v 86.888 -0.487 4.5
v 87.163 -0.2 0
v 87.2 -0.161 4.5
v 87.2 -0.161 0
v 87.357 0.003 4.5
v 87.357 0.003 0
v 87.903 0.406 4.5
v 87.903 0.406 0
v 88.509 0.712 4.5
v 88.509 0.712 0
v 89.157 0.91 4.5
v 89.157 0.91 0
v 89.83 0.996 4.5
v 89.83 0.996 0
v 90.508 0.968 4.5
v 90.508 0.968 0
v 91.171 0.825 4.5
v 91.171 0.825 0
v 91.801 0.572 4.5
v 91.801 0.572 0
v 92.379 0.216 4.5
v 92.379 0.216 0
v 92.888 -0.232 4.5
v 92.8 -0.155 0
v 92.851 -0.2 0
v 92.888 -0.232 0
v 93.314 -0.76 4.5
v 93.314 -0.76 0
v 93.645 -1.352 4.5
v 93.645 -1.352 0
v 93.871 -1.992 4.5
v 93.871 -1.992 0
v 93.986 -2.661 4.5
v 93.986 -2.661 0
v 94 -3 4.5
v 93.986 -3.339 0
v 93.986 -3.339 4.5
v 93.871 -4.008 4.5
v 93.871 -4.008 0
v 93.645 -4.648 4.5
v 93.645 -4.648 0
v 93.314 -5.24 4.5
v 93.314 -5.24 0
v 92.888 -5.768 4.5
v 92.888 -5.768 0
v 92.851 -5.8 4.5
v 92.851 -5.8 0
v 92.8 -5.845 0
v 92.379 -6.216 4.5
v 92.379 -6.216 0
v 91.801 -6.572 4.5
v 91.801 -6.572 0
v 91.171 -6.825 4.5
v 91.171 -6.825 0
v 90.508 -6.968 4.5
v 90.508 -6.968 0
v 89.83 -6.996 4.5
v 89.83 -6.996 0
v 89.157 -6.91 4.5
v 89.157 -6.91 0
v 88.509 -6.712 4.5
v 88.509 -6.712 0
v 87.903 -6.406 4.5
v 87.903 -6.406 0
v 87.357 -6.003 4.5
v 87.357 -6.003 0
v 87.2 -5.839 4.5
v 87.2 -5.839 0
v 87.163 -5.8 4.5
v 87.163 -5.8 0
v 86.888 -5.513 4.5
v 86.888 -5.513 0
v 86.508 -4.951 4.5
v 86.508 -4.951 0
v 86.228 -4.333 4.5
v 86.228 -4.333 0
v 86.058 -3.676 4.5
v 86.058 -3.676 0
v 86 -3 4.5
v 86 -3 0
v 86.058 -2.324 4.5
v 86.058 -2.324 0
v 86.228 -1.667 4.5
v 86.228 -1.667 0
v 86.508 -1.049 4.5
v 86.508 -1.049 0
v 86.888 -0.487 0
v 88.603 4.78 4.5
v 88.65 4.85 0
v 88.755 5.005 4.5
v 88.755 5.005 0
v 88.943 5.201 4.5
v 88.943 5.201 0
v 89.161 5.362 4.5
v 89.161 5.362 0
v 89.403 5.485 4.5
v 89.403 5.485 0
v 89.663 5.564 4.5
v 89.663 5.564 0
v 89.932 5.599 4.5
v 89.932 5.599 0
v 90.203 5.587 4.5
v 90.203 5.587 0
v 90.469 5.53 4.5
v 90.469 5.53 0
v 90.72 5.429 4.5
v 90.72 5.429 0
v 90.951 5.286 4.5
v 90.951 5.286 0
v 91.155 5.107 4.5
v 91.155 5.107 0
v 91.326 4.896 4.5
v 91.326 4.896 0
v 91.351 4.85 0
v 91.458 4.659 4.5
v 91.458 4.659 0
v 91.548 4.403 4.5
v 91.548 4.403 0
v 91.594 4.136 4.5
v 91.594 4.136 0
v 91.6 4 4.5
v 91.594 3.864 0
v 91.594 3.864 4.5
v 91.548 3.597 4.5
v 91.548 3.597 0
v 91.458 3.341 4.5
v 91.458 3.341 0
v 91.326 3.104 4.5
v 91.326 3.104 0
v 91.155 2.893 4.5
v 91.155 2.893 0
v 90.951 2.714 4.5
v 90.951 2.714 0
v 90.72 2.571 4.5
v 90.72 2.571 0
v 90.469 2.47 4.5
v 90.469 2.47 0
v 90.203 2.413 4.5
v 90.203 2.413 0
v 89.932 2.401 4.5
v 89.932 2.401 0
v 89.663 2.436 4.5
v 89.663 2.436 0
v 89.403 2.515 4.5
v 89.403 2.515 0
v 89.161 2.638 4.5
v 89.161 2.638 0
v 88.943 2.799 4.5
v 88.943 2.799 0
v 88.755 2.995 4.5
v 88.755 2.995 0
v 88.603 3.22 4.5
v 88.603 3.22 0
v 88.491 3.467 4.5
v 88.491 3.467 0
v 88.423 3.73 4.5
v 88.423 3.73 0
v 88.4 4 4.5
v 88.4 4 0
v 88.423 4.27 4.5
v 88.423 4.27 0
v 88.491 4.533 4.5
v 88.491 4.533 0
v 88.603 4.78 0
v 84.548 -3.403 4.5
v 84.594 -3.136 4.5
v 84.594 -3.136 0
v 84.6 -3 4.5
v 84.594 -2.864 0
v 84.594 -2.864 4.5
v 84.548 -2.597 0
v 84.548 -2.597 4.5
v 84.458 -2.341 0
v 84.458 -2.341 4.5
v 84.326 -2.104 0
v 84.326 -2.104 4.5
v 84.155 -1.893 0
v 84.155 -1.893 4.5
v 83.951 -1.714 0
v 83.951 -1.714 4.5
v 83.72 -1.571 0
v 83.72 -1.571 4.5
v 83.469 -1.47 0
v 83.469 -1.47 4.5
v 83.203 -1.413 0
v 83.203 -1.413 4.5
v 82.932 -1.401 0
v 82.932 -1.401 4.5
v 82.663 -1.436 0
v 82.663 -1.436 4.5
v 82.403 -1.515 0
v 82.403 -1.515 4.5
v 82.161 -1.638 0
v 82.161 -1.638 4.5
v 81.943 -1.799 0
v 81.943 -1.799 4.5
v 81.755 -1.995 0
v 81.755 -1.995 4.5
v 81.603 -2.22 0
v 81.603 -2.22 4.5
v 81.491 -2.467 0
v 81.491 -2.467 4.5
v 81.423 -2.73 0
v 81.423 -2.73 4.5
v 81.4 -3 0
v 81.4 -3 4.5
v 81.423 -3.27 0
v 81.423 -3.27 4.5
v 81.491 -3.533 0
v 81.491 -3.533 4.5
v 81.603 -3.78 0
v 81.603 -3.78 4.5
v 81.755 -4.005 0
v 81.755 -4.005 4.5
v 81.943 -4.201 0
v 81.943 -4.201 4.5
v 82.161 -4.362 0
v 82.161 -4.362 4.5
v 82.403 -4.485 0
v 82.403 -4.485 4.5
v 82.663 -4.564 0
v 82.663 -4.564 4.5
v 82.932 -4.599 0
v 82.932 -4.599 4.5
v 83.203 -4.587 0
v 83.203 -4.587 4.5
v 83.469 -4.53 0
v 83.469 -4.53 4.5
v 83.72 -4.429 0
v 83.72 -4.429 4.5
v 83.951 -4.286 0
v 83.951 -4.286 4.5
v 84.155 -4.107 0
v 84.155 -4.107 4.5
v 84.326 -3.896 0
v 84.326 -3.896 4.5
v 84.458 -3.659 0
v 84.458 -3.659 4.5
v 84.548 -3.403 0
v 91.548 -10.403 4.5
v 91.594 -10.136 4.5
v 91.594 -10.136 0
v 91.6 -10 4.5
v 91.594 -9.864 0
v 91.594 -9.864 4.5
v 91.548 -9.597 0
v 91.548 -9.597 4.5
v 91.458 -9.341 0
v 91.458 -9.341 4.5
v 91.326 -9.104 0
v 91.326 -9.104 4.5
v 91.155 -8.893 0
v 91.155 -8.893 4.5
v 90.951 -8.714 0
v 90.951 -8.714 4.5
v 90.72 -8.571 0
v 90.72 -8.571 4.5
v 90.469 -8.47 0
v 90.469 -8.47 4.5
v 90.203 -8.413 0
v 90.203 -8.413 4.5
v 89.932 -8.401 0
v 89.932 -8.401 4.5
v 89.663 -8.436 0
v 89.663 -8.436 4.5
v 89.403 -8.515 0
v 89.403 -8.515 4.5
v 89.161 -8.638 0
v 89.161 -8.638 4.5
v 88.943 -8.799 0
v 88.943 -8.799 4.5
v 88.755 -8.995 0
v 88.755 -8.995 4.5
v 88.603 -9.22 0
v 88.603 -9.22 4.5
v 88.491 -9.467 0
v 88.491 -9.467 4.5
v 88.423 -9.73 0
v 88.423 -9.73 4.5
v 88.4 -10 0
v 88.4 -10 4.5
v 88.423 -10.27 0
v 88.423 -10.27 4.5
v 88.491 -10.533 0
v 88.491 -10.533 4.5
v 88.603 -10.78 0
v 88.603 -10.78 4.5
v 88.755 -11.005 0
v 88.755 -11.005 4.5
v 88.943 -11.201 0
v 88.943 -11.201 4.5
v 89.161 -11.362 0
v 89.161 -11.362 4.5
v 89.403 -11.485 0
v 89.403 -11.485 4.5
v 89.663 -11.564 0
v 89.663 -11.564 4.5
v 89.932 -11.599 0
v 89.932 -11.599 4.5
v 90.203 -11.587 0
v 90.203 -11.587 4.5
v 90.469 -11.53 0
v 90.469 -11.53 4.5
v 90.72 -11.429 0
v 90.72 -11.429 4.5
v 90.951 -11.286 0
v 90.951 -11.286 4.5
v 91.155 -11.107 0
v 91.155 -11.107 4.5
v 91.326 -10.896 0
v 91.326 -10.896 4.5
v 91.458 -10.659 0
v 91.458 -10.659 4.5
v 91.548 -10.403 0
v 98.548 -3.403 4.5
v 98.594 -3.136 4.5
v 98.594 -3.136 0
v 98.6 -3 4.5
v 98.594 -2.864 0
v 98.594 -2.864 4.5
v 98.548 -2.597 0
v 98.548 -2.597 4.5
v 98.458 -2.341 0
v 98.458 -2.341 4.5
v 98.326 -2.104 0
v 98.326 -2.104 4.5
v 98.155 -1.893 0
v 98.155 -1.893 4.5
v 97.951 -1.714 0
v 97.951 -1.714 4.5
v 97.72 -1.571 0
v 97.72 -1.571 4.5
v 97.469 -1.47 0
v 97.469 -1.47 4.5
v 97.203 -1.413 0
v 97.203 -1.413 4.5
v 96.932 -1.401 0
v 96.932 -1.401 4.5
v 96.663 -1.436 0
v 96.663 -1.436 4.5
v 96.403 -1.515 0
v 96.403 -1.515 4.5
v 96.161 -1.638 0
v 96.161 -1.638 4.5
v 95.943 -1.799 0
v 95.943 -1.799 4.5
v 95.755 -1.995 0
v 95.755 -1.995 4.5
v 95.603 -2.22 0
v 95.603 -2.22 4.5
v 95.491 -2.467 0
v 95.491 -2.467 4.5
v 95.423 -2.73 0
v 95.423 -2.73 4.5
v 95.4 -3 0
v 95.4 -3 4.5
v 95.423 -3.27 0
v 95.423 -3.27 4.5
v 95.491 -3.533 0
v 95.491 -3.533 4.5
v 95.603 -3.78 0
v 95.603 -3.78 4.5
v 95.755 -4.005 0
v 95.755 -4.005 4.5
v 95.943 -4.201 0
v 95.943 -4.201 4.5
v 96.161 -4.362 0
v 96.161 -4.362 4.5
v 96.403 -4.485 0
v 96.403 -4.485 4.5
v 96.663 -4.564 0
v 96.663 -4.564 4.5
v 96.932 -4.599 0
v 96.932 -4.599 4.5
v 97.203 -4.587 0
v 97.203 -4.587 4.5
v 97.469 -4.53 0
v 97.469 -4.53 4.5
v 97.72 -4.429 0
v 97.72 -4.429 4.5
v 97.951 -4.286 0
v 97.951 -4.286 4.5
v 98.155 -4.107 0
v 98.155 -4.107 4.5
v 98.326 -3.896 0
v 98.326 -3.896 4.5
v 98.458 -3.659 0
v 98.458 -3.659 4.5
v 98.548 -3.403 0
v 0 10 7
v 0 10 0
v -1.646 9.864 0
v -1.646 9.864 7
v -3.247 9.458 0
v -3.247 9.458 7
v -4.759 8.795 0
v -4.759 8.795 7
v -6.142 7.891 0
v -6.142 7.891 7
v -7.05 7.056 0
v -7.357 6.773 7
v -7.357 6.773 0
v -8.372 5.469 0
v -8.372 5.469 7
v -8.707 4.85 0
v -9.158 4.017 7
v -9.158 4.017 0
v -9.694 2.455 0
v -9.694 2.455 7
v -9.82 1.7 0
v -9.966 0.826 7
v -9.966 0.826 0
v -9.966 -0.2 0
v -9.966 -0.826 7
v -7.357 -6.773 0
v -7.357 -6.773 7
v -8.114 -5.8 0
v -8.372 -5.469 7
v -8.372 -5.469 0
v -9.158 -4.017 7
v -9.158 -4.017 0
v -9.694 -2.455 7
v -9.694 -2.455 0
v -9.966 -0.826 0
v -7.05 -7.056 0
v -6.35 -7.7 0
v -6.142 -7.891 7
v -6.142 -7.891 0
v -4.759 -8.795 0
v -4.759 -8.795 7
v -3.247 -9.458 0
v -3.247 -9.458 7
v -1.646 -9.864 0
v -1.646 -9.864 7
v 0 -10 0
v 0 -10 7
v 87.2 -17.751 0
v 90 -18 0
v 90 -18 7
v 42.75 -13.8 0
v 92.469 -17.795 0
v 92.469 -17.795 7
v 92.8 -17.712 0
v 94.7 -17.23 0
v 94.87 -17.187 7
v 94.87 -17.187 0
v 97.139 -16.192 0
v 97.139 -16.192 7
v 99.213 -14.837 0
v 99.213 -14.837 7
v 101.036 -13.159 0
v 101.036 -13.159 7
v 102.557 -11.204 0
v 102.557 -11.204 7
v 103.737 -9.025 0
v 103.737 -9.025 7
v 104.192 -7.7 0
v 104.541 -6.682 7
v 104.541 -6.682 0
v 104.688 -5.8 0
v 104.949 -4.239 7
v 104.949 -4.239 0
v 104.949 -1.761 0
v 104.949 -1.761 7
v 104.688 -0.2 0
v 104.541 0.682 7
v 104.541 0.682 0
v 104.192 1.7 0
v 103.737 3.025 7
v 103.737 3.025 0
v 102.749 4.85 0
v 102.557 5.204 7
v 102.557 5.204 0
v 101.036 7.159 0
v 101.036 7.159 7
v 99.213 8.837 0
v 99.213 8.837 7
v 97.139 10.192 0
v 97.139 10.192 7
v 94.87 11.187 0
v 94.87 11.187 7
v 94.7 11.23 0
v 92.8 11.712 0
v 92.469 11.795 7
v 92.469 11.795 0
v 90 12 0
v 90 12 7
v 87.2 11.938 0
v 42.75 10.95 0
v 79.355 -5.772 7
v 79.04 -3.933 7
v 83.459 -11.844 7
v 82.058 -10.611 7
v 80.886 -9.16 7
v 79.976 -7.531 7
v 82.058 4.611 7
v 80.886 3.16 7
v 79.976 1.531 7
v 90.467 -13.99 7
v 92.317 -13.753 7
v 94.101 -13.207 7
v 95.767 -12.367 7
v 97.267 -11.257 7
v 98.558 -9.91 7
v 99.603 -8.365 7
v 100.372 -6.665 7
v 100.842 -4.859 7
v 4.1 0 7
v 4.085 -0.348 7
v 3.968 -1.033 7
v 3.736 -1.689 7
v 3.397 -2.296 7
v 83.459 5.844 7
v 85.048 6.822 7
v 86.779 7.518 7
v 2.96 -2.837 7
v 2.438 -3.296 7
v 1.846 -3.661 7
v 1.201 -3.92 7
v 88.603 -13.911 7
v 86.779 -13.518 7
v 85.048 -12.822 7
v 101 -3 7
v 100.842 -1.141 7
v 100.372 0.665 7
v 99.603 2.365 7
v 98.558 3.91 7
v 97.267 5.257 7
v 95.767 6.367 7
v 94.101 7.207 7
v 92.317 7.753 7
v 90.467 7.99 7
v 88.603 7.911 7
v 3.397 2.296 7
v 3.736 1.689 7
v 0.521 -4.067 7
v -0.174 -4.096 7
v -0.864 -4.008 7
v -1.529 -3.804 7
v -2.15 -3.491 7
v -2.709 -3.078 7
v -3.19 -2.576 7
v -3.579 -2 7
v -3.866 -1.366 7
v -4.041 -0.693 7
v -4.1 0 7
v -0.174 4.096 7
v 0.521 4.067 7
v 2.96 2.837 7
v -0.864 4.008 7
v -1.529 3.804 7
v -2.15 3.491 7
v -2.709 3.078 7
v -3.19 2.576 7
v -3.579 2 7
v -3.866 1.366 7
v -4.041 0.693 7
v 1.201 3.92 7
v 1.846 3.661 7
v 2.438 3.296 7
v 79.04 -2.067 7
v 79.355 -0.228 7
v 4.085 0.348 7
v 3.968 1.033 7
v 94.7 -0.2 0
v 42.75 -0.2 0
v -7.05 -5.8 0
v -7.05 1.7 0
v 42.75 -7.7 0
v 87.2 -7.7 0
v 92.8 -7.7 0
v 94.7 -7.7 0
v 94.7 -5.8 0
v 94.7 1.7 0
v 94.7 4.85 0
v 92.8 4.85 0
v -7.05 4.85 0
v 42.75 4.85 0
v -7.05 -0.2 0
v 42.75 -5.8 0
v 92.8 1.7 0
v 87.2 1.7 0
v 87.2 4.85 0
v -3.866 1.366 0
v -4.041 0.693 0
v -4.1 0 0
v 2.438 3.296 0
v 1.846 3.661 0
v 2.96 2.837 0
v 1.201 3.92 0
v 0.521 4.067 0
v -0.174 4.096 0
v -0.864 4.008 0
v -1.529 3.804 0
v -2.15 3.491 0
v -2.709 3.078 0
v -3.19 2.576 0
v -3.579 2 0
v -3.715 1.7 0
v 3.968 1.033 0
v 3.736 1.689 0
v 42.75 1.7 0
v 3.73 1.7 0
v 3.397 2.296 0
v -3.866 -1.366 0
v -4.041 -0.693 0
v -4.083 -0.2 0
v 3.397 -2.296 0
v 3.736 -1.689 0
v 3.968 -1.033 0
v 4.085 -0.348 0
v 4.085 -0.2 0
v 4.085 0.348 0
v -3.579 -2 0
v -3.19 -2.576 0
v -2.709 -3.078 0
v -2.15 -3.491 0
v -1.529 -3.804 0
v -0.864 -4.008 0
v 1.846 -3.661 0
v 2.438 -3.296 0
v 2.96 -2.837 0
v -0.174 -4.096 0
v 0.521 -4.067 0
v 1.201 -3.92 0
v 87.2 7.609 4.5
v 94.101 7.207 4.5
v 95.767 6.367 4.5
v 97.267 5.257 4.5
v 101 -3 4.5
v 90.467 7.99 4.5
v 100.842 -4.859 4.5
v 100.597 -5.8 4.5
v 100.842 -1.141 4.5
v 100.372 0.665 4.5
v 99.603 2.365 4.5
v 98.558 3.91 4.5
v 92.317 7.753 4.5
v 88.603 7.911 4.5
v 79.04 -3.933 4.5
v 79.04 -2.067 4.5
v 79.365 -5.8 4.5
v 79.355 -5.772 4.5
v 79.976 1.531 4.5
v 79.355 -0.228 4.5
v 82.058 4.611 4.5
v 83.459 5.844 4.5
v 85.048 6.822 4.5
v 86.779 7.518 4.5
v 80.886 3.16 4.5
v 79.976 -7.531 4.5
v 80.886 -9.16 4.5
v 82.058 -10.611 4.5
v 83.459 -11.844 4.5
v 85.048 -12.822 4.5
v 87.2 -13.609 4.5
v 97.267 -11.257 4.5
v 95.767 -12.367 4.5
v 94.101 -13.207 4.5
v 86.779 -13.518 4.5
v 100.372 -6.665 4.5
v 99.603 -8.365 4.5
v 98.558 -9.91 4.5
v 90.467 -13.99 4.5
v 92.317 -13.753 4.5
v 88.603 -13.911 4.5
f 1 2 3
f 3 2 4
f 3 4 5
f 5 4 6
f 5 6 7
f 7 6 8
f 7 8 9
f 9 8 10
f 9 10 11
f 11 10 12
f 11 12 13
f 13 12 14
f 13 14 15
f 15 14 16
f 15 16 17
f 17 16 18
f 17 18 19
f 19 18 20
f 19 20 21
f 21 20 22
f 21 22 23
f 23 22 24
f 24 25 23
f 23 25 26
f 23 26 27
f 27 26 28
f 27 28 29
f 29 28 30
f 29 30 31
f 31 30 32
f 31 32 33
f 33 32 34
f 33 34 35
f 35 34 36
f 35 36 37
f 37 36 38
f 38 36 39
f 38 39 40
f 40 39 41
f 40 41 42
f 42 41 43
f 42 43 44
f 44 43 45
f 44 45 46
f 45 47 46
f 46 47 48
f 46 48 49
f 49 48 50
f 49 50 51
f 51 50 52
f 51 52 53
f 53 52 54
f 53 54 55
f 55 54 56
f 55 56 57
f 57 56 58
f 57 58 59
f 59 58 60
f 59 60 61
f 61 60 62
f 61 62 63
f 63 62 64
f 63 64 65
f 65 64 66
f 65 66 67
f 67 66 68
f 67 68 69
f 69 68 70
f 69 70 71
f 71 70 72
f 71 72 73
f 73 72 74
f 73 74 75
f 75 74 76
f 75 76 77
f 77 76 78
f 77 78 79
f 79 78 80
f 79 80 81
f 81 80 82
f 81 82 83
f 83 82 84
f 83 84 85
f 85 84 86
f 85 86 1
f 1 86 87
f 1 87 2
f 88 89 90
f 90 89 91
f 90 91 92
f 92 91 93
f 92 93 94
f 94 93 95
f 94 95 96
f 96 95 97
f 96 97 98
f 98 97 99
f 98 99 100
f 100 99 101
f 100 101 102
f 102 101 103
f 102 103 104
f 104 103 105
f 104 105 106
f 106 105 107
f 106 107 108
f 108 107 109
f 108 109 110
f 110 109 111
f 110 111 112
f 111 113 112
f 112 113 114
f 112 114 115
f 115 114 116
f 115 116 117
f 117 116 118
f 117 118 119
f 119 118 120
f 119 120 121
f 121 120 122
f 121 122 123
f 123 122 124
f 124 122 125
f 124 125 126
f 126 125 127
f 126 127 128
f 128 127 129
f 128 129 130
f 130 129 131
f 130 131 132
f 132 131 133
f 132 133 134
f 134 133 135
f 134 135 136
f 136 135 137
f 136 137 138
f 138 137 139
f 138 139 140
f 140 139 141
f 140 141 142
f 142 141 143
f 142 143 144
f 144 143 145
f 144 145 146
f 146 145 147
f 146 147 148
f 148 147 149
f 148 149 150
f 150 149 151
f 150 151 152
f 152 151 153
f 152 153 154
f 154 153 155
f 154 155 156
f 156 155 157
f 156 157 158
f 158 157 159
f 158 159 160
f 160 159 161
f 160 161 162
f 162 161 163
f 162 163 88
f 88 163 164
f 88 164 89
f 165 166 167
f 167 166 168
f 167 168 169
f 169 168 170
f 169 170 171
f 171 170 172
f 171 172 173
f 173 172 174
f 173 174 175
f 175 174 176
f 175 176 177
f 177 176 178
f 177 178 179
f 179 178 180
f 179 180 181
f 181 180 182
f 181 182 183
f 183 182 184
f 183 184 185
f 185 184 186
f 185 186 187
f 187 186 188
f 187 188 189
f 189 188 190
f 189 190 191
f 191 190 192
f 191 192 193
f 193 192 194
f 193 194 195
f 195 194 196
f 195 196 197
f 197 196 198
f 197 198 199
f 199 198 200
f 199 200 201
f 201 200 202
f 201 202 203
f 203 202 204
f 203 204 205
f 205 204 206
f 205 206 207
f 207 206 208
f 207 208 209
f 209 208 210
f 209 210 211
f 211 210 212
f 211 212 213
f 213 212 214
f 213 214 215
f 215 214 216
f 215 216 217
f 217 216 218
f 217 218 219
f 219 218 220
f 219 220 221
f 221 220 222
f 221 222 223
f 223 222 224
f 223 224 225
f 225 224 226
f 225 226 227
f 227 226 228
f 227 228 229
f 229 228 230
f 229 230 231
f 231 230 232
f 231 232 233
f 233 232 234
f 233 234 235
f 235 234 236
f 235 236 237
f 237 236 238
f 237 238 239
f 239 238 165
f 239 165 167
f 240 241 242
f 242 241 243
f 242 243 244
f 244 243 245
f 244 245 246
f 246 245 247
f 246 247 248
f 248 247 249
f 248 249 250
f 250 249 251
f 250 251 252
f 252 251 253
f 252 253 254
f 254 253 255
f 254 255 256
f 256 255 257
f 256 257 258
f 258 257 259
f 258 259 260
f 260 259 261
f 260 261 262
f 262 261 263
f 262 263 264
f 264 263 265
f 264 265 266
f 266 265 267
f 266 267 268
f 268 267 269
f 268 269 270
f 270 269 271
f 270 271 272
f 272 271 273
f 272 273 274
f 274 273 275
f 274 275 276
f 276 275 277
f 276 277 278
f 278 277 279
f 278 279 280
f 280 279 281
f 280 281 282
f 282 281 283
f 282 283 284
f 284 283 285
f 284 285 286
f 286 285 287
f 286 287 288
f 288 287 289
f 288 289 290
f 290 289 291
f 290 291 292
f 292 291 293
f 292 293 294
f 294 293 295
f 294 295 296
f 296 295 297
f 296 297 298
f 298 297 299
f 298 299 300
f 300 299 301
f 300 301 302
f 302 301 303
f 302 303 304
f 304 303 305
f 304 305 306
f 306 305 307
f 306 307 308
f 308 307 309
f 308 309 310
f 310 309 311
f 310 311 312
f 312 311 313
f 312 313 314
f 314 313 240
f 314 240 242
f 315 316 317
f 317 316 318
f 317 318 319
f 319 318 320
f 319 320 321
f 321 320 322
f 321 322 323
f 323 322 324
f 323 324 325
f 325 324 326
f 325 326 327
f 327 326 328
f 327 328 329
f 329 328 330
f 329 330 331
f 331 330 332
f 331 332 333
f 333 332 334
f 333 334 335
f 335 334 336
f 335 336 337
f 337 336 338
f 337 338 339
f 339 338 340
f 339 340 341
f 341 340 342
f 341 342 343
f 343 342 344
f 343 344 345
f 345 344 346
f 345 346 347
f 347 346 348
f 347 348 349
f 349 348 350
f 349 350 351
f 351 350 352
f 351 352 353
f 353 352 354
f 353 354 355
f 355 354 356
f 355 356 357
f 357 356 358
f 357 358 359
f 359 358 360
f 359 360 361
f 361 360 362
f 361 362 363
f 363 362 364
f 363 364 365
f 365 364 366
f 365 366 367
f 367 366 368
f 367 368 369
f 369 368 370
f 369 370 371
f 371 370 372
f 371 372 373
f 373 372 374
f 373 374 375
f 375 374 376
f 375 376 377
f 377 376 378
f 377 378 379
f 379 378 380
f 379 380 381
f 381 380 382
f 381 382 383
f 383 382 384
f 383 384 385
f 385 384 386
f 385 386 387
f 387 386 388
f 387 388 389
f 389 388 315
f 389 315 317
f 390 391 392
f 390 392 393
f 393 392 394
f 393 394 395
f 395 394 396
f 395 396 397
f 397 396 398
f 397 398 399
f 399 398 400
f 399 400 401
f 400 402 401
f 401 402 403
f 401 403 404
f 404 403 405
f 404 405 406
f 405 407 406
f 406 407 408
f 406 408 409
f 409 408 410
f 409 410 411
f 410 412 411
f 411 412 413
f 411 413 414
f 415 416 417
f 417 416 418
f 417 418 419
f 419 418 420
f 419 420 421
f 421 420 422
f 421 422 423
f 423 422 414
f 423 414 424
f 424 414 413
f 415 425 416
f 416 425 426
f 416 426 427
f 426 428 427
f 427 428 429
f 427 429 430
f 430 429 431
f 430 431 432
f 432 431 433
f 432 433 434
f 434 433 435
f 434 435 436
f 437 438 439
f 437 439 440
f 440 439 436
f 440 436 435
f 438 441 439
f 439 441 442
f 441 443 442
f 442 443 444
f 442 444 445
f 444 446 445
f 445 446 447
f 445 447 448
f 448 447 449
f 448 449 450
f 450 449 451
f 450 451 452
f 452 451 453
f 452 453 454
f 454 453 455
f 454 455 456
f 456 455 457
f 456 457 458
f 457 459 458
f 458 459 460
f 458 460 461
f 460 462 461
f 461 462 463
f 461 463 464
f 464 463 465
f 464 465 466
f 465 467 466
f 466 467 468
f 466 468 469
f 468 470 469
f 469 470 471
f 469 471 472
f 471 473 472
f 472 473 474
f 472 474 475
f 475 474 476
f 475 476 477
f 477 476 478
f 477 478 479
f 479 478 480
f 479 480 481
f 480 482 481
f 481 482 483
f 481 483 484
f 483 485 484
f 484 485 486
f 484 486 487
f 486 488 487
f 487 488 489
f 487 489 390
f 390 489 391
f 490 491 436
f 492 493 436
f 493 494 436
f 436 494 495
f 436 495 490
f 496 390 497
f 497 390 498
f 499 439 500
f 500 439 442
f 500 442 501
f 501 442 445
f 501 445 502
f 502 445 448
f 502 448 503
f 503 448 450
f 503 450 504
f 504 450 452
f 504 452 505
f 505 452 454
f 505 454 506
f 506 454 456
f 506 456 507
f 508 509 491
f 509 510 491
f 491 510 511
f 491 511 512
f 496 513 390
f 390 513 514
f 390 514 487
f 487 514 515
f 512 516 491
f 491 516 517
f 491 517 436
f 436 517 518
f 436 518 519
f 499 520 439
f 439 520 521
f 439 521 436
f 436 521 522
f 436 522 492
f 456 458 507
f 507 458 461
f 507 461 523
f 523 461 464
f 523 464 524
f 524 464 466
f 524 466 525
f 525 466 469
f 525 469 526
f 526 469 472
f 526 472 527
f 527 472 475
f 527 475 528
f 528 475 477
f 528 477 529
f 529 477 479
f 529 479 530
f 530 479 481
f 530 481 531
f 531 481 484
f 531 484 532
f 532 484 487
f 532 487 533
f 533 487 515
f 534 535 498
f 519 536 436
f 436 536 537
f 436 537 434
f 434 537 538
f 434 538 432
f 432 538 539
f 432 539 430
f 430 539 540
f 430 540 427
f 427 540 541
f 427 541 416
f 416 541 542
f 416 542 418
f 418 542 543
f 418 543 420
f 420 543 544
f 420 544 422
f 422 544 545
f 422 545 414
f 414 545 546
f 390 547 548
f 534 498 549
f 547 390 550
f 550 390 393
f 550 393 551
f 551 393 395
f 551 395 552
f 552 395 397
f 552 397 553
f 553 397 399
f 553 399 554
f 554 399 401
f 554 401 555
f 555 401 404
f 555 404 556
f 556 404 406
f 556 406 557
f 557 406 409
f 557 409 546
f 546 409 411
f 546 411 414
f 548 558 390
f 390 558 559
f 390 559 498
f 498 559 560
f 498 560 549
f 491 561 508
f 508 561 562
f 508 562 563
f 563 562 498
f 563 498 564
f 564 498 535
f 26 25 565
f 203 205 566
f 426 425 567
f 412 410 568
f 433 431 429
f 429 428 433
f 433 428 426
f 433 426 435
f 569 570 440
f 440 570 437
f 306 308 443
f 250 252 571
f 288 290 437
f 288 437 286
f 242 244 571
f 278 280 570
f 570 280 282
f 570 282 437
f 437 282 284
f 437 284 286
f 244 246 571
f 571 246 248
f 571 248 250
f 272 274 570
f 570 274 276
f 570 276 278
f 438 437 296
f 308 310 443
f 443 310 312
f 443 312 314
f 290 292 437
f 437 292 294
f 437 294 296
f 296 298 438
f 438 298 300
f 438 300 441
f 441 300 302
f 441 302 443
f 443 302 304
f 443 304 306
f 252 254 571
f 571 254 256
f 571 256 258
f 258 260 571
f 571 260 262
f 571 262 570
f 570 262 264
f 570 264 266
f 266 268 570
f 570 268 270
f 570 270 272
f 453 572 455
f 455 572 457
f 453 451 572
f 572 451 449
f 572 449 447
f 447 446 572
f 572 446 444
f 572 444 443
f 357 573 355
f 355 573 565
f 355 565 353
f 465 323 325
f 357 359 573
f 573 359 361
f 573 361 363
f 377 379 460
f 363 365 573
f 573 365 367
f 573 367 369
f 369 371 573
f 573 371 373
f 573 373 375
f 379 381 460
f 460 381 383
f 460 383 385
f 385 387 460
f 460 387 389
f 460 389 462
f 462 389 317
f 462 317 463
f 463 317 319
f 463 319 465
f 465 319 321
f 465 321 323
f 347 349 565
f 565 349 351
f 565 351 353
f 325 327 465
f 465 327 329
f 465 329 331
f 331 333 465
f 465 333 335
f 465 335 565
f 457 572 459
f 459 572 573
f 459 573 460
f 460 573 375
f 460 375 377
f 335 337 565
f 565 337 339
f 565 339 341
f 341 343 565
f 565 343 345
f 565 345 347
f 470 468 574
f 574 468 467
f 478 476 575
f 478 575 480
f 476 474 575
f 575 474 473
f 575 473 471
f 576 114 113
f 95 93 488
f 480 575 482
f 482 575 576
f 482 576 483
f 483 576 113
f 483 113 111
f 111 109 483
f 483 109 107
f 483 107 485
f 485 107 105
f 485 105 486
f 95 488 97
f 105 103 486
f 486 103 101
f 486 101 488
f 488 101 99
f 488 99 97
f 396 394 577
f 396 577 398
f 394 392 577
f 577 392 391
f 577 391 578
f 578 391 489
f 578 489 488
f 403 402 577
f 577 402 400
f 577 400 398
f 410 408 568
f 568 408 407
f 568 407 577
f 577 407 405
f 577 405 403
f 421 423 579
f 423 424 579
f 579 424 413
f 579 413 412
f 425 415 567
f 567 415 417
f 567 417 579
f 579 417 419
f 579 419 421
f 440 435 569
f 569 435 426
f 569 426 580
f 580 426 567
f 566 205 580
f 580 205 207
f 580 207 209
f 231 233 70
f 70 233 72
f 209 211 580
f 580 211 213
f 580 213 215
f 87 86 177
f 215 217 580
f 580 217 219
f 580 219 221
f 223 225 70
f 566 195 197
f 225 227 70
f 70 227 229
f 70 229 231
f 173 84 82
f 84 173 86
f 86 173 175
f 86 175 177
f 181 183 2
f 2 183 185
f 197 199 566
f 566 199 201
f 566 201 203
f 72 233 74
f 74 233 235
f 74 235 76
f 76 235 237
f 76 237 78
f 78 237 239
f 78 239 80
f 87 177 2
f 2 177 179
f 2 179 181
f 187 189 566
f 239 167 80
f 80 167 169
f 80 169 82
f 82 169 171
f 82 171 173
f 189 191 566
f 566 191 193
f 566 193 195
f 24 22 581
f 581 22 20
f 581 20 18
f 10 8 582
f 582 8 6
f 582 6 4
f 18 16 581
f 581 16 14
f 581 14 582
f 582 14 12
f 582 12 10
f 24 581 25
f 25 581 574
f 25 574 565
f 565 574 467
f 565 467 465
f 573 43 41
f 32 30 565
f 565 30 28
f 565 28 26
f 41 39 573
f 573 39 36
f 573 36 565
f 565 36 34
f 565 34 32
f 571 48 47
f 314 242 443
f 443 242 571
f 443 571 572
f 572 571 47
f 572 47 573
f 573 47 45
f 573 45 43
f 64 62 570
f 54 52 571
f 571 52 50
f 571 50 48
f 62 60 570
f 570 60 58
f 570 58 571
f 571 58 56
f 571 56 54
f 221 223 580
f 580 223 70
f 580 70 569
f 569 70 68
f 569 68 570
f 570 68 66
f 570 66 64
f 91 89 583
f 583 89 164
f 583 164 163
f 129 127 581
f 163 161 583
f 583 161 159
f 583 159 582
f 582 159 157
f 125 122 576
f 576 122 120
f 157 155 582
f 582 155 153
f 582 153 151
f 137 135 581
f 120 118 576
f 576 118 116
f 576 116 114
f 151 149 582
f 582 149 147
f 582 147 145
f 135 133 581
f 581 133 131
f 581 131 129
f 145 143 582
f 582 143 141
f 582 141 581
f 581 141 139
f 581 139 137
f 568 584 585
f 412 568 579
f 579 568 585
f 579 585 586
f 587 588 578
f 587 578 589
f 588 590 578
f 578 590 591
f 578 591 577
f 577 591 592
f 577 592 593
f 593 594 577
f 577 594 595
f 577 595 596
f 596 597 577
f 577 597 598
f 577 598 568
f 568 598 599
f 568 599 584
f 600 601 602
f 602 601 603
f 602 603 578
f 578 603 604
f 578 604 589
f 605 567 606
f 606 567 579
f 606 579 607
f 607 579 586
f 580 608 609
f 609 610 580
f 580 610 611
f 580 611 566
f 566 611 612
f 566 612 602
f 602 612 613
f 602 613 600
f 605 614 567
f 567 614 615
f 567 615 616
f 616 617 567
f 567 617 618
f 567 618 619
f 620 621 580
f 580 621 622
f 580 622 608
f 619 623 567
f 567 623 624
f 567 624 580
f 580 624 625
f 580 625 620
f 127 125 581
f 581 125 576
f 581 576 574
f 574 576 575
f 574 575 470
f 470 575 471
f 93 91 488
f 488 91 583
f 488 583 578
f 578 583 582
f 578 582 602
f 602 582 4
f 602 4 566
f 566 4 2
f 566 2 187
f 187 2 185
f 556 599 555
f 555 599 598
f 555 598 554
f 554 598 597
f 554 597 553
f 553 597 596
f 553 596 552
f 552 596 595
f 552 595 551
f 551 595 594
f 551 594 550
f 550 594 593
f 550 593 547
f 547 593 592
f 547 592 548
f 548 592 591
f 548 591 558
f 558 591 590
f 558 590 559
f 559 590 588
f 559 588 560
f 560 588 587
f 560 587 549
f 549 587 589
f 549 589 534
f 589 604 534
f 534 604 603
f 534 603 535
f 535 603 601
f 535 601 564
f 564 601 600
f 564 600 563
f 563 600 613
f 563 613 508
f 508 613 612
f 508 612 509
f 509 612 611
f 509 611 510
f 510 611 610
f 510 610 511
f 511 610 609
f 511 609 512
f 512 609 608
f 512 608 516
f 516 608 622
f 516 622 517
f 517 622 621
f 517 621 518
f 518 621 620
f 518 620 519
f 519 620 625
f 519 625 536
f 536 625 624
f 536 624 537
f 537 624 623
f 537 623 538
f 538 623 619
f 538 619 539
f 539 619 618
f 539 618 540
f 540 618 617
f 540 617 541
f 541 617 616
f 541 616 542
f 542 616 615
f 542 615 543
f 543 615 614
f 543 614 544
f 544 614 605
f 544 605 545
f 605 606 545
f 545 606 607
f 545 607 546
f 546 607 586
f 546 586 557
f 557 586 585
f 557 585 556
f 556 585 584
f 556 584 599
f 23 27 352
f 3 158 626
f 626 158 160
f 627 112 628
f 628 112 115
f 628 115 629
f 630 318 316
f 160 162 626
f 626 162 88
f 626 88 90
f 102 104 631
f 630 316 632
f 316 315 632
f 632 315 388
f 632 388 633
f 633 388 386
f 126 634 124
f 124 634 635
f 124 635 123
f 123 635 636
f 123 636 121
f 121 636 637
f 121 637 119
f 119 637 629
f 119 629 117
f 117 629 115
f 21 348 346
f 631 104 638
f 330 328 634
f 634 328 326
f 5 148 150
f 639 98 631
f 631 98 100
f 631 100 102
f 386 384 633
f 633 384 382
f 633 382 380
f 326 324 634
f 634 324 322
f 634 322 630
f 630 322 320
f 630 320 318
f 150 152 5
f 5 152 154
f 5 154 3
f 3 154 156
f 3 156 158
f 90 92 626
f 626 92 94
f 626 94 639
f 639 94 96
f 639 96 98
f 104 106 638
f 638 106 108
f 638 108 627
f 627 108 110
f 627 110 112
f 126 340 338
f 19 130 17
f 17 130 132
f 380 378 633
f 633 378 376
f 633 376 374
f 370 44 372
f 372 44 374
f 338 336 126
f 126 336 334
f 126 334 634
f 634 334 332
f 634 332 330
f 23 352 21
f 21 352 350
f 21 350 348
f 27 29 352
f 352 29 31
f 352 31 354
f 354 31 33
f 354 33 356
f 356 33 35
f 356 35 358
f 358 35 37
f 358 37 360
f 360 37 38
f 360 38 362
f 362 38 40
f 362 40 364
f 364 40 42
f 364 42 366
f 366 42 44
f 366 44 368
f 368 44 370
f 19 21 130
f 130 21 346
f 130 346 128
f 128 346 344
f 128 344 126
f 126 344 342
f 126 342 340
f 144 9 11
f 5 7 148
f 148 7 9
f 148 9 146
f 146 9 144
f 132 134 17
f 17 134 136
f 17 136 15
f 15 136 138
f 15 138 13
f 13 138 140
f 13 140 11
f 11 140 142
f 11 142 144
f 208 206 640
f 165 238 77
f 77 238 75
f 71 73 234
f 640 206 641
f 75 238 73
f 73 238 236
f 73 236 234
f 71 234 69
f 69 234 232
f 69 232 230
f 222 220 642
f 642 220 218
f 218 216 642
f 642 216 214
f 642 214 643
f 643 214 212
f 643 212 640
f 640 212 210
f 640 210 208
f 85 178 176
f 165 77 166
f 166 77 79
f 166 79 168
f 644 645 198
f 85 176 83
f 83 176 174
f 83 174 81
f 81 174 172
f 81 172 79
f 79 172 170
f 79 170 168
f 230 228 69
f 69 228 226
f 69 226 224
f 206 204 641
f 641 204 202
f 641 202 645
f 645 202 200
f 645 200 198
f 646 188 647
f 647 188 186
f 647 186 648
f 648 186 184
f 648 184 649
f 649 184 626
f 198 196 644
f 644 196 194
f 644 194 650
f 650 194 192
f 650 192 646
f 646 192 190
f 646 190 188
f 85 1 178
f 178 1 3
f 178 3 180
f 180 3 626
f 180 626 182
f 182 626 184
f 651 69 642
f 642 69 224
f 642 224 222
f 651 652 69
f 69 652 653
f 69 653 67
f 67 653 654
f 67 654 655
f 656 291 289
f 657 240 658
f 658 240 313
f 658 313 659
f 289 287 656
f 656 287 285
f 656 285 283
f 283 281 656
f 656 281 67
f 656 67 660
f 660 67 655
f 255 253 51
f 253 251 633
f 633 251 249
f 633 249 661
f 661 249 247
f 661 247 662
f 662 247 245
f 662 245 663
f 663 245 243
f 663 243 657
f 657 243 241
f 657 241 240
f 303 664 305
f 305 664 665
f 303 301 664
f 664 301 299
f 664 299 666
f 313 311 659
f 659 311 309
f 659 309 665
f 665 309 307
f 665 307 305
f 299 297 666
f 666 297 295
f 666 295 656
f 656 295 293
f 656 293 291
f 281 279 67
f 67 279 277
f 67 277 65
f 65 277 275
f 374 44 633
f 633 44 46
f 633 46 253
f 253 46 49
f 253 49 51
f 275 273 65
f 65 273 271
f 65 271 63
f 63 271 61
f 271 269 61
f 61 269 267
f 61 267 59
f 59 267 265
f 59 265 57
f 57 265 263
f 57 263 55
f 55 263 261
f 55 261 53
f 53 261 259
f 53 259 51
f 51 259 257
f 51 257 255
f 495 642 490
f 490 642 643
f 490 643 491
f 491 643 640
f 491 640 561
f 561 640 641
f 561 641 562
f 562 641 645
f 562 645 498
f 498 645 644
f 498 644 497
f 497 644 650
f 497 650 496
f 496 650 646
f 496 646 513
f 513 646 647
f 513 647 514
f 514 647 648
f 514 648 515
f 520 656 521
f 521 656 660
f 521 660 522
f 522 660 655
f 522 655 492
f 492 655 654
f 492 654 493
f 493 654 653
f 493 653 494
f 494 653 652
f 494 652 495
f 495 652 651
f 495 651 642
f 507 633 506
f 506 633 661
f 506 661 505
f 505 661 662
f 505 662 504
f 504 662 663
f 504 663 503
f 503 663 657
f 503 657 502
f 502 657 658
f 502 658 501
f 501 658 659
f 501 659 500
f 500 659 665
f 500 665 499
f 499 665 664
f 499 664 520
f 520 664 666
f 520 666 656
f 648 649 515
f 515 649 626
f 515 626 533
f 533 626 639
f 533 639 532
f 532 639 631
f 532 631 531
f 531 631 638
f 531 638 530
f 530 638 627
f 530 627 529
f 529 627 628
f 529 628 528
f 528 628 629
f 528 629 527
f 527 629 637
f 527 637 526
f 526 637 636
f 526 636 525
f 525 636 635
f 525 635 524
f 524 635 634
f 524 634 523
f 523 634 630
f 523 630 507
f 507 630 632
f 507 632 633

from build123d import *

# Parameters (mm, degrees)
EXTRUDE_1_DEPTH     = 7
SKETCH_2_R          = 4.1
SKETCH_2_R_2        = 1.6
SKETCH_2_R_3        = 4
CUT_EXTRUDE_1_DEPTH = 10
SKETCH_3_R          = 11
CUT_EXTRUDE_2_DEPTH = 2.5


with BuildPart() as part:
    # 草图1 → 凸台-拉伸1 (new body)
    with BuildSketch(Plane.XY):
        with BuildLine():
            Line((0, -10), (90, -18))
            ThreePointArc((90, -18), (105, -3), (90, 12))
            Line((90, 12), (0, 10))
            ThreePointArc((0, 10), (-10, 0), (0, -10))
        make_face()
    extrude(amount=EXTRUDE_1_DEPTH)

    # 草图2 → 切除-拉伸1 (cut)
    with BuildSketch(Plane(origin=(0, 0, 0), x_dir=(-1, 0, 0), z_dir=(0, 0, -1))):
        Circle(SKETCH_2_R)
        with Locations((-90, -10)):
            Circle(SKETCH_2_R_2)
        with Locations((-83, -3)):
            Circle(SKETCH_2_R_2)
        with Locations((-90, 4)):
            Circle(SKETCH_2_R_2)
        with Locations((-97, -3)):
            Circle(SKETCH_2_R_2)
        with Locations((-90, -3)):
            Circle(SKETCH_2_R_3)
    extrude(amount=-CUT_EXTRUDE_1_DEPTH, mode=Mode.SUBTRACT)

    # 草图3 → 切除-拉伸2 (cut)
    with BuildSketch(Plane.XY.offset(7)):
        with Locations((90, -3)):
            Circle(SKETCH_3_R)
    extrude(amount=-CUT_EXTRUDE_2_DEPTH, mode=Mode.SUBTRACT)


solid = part.part
